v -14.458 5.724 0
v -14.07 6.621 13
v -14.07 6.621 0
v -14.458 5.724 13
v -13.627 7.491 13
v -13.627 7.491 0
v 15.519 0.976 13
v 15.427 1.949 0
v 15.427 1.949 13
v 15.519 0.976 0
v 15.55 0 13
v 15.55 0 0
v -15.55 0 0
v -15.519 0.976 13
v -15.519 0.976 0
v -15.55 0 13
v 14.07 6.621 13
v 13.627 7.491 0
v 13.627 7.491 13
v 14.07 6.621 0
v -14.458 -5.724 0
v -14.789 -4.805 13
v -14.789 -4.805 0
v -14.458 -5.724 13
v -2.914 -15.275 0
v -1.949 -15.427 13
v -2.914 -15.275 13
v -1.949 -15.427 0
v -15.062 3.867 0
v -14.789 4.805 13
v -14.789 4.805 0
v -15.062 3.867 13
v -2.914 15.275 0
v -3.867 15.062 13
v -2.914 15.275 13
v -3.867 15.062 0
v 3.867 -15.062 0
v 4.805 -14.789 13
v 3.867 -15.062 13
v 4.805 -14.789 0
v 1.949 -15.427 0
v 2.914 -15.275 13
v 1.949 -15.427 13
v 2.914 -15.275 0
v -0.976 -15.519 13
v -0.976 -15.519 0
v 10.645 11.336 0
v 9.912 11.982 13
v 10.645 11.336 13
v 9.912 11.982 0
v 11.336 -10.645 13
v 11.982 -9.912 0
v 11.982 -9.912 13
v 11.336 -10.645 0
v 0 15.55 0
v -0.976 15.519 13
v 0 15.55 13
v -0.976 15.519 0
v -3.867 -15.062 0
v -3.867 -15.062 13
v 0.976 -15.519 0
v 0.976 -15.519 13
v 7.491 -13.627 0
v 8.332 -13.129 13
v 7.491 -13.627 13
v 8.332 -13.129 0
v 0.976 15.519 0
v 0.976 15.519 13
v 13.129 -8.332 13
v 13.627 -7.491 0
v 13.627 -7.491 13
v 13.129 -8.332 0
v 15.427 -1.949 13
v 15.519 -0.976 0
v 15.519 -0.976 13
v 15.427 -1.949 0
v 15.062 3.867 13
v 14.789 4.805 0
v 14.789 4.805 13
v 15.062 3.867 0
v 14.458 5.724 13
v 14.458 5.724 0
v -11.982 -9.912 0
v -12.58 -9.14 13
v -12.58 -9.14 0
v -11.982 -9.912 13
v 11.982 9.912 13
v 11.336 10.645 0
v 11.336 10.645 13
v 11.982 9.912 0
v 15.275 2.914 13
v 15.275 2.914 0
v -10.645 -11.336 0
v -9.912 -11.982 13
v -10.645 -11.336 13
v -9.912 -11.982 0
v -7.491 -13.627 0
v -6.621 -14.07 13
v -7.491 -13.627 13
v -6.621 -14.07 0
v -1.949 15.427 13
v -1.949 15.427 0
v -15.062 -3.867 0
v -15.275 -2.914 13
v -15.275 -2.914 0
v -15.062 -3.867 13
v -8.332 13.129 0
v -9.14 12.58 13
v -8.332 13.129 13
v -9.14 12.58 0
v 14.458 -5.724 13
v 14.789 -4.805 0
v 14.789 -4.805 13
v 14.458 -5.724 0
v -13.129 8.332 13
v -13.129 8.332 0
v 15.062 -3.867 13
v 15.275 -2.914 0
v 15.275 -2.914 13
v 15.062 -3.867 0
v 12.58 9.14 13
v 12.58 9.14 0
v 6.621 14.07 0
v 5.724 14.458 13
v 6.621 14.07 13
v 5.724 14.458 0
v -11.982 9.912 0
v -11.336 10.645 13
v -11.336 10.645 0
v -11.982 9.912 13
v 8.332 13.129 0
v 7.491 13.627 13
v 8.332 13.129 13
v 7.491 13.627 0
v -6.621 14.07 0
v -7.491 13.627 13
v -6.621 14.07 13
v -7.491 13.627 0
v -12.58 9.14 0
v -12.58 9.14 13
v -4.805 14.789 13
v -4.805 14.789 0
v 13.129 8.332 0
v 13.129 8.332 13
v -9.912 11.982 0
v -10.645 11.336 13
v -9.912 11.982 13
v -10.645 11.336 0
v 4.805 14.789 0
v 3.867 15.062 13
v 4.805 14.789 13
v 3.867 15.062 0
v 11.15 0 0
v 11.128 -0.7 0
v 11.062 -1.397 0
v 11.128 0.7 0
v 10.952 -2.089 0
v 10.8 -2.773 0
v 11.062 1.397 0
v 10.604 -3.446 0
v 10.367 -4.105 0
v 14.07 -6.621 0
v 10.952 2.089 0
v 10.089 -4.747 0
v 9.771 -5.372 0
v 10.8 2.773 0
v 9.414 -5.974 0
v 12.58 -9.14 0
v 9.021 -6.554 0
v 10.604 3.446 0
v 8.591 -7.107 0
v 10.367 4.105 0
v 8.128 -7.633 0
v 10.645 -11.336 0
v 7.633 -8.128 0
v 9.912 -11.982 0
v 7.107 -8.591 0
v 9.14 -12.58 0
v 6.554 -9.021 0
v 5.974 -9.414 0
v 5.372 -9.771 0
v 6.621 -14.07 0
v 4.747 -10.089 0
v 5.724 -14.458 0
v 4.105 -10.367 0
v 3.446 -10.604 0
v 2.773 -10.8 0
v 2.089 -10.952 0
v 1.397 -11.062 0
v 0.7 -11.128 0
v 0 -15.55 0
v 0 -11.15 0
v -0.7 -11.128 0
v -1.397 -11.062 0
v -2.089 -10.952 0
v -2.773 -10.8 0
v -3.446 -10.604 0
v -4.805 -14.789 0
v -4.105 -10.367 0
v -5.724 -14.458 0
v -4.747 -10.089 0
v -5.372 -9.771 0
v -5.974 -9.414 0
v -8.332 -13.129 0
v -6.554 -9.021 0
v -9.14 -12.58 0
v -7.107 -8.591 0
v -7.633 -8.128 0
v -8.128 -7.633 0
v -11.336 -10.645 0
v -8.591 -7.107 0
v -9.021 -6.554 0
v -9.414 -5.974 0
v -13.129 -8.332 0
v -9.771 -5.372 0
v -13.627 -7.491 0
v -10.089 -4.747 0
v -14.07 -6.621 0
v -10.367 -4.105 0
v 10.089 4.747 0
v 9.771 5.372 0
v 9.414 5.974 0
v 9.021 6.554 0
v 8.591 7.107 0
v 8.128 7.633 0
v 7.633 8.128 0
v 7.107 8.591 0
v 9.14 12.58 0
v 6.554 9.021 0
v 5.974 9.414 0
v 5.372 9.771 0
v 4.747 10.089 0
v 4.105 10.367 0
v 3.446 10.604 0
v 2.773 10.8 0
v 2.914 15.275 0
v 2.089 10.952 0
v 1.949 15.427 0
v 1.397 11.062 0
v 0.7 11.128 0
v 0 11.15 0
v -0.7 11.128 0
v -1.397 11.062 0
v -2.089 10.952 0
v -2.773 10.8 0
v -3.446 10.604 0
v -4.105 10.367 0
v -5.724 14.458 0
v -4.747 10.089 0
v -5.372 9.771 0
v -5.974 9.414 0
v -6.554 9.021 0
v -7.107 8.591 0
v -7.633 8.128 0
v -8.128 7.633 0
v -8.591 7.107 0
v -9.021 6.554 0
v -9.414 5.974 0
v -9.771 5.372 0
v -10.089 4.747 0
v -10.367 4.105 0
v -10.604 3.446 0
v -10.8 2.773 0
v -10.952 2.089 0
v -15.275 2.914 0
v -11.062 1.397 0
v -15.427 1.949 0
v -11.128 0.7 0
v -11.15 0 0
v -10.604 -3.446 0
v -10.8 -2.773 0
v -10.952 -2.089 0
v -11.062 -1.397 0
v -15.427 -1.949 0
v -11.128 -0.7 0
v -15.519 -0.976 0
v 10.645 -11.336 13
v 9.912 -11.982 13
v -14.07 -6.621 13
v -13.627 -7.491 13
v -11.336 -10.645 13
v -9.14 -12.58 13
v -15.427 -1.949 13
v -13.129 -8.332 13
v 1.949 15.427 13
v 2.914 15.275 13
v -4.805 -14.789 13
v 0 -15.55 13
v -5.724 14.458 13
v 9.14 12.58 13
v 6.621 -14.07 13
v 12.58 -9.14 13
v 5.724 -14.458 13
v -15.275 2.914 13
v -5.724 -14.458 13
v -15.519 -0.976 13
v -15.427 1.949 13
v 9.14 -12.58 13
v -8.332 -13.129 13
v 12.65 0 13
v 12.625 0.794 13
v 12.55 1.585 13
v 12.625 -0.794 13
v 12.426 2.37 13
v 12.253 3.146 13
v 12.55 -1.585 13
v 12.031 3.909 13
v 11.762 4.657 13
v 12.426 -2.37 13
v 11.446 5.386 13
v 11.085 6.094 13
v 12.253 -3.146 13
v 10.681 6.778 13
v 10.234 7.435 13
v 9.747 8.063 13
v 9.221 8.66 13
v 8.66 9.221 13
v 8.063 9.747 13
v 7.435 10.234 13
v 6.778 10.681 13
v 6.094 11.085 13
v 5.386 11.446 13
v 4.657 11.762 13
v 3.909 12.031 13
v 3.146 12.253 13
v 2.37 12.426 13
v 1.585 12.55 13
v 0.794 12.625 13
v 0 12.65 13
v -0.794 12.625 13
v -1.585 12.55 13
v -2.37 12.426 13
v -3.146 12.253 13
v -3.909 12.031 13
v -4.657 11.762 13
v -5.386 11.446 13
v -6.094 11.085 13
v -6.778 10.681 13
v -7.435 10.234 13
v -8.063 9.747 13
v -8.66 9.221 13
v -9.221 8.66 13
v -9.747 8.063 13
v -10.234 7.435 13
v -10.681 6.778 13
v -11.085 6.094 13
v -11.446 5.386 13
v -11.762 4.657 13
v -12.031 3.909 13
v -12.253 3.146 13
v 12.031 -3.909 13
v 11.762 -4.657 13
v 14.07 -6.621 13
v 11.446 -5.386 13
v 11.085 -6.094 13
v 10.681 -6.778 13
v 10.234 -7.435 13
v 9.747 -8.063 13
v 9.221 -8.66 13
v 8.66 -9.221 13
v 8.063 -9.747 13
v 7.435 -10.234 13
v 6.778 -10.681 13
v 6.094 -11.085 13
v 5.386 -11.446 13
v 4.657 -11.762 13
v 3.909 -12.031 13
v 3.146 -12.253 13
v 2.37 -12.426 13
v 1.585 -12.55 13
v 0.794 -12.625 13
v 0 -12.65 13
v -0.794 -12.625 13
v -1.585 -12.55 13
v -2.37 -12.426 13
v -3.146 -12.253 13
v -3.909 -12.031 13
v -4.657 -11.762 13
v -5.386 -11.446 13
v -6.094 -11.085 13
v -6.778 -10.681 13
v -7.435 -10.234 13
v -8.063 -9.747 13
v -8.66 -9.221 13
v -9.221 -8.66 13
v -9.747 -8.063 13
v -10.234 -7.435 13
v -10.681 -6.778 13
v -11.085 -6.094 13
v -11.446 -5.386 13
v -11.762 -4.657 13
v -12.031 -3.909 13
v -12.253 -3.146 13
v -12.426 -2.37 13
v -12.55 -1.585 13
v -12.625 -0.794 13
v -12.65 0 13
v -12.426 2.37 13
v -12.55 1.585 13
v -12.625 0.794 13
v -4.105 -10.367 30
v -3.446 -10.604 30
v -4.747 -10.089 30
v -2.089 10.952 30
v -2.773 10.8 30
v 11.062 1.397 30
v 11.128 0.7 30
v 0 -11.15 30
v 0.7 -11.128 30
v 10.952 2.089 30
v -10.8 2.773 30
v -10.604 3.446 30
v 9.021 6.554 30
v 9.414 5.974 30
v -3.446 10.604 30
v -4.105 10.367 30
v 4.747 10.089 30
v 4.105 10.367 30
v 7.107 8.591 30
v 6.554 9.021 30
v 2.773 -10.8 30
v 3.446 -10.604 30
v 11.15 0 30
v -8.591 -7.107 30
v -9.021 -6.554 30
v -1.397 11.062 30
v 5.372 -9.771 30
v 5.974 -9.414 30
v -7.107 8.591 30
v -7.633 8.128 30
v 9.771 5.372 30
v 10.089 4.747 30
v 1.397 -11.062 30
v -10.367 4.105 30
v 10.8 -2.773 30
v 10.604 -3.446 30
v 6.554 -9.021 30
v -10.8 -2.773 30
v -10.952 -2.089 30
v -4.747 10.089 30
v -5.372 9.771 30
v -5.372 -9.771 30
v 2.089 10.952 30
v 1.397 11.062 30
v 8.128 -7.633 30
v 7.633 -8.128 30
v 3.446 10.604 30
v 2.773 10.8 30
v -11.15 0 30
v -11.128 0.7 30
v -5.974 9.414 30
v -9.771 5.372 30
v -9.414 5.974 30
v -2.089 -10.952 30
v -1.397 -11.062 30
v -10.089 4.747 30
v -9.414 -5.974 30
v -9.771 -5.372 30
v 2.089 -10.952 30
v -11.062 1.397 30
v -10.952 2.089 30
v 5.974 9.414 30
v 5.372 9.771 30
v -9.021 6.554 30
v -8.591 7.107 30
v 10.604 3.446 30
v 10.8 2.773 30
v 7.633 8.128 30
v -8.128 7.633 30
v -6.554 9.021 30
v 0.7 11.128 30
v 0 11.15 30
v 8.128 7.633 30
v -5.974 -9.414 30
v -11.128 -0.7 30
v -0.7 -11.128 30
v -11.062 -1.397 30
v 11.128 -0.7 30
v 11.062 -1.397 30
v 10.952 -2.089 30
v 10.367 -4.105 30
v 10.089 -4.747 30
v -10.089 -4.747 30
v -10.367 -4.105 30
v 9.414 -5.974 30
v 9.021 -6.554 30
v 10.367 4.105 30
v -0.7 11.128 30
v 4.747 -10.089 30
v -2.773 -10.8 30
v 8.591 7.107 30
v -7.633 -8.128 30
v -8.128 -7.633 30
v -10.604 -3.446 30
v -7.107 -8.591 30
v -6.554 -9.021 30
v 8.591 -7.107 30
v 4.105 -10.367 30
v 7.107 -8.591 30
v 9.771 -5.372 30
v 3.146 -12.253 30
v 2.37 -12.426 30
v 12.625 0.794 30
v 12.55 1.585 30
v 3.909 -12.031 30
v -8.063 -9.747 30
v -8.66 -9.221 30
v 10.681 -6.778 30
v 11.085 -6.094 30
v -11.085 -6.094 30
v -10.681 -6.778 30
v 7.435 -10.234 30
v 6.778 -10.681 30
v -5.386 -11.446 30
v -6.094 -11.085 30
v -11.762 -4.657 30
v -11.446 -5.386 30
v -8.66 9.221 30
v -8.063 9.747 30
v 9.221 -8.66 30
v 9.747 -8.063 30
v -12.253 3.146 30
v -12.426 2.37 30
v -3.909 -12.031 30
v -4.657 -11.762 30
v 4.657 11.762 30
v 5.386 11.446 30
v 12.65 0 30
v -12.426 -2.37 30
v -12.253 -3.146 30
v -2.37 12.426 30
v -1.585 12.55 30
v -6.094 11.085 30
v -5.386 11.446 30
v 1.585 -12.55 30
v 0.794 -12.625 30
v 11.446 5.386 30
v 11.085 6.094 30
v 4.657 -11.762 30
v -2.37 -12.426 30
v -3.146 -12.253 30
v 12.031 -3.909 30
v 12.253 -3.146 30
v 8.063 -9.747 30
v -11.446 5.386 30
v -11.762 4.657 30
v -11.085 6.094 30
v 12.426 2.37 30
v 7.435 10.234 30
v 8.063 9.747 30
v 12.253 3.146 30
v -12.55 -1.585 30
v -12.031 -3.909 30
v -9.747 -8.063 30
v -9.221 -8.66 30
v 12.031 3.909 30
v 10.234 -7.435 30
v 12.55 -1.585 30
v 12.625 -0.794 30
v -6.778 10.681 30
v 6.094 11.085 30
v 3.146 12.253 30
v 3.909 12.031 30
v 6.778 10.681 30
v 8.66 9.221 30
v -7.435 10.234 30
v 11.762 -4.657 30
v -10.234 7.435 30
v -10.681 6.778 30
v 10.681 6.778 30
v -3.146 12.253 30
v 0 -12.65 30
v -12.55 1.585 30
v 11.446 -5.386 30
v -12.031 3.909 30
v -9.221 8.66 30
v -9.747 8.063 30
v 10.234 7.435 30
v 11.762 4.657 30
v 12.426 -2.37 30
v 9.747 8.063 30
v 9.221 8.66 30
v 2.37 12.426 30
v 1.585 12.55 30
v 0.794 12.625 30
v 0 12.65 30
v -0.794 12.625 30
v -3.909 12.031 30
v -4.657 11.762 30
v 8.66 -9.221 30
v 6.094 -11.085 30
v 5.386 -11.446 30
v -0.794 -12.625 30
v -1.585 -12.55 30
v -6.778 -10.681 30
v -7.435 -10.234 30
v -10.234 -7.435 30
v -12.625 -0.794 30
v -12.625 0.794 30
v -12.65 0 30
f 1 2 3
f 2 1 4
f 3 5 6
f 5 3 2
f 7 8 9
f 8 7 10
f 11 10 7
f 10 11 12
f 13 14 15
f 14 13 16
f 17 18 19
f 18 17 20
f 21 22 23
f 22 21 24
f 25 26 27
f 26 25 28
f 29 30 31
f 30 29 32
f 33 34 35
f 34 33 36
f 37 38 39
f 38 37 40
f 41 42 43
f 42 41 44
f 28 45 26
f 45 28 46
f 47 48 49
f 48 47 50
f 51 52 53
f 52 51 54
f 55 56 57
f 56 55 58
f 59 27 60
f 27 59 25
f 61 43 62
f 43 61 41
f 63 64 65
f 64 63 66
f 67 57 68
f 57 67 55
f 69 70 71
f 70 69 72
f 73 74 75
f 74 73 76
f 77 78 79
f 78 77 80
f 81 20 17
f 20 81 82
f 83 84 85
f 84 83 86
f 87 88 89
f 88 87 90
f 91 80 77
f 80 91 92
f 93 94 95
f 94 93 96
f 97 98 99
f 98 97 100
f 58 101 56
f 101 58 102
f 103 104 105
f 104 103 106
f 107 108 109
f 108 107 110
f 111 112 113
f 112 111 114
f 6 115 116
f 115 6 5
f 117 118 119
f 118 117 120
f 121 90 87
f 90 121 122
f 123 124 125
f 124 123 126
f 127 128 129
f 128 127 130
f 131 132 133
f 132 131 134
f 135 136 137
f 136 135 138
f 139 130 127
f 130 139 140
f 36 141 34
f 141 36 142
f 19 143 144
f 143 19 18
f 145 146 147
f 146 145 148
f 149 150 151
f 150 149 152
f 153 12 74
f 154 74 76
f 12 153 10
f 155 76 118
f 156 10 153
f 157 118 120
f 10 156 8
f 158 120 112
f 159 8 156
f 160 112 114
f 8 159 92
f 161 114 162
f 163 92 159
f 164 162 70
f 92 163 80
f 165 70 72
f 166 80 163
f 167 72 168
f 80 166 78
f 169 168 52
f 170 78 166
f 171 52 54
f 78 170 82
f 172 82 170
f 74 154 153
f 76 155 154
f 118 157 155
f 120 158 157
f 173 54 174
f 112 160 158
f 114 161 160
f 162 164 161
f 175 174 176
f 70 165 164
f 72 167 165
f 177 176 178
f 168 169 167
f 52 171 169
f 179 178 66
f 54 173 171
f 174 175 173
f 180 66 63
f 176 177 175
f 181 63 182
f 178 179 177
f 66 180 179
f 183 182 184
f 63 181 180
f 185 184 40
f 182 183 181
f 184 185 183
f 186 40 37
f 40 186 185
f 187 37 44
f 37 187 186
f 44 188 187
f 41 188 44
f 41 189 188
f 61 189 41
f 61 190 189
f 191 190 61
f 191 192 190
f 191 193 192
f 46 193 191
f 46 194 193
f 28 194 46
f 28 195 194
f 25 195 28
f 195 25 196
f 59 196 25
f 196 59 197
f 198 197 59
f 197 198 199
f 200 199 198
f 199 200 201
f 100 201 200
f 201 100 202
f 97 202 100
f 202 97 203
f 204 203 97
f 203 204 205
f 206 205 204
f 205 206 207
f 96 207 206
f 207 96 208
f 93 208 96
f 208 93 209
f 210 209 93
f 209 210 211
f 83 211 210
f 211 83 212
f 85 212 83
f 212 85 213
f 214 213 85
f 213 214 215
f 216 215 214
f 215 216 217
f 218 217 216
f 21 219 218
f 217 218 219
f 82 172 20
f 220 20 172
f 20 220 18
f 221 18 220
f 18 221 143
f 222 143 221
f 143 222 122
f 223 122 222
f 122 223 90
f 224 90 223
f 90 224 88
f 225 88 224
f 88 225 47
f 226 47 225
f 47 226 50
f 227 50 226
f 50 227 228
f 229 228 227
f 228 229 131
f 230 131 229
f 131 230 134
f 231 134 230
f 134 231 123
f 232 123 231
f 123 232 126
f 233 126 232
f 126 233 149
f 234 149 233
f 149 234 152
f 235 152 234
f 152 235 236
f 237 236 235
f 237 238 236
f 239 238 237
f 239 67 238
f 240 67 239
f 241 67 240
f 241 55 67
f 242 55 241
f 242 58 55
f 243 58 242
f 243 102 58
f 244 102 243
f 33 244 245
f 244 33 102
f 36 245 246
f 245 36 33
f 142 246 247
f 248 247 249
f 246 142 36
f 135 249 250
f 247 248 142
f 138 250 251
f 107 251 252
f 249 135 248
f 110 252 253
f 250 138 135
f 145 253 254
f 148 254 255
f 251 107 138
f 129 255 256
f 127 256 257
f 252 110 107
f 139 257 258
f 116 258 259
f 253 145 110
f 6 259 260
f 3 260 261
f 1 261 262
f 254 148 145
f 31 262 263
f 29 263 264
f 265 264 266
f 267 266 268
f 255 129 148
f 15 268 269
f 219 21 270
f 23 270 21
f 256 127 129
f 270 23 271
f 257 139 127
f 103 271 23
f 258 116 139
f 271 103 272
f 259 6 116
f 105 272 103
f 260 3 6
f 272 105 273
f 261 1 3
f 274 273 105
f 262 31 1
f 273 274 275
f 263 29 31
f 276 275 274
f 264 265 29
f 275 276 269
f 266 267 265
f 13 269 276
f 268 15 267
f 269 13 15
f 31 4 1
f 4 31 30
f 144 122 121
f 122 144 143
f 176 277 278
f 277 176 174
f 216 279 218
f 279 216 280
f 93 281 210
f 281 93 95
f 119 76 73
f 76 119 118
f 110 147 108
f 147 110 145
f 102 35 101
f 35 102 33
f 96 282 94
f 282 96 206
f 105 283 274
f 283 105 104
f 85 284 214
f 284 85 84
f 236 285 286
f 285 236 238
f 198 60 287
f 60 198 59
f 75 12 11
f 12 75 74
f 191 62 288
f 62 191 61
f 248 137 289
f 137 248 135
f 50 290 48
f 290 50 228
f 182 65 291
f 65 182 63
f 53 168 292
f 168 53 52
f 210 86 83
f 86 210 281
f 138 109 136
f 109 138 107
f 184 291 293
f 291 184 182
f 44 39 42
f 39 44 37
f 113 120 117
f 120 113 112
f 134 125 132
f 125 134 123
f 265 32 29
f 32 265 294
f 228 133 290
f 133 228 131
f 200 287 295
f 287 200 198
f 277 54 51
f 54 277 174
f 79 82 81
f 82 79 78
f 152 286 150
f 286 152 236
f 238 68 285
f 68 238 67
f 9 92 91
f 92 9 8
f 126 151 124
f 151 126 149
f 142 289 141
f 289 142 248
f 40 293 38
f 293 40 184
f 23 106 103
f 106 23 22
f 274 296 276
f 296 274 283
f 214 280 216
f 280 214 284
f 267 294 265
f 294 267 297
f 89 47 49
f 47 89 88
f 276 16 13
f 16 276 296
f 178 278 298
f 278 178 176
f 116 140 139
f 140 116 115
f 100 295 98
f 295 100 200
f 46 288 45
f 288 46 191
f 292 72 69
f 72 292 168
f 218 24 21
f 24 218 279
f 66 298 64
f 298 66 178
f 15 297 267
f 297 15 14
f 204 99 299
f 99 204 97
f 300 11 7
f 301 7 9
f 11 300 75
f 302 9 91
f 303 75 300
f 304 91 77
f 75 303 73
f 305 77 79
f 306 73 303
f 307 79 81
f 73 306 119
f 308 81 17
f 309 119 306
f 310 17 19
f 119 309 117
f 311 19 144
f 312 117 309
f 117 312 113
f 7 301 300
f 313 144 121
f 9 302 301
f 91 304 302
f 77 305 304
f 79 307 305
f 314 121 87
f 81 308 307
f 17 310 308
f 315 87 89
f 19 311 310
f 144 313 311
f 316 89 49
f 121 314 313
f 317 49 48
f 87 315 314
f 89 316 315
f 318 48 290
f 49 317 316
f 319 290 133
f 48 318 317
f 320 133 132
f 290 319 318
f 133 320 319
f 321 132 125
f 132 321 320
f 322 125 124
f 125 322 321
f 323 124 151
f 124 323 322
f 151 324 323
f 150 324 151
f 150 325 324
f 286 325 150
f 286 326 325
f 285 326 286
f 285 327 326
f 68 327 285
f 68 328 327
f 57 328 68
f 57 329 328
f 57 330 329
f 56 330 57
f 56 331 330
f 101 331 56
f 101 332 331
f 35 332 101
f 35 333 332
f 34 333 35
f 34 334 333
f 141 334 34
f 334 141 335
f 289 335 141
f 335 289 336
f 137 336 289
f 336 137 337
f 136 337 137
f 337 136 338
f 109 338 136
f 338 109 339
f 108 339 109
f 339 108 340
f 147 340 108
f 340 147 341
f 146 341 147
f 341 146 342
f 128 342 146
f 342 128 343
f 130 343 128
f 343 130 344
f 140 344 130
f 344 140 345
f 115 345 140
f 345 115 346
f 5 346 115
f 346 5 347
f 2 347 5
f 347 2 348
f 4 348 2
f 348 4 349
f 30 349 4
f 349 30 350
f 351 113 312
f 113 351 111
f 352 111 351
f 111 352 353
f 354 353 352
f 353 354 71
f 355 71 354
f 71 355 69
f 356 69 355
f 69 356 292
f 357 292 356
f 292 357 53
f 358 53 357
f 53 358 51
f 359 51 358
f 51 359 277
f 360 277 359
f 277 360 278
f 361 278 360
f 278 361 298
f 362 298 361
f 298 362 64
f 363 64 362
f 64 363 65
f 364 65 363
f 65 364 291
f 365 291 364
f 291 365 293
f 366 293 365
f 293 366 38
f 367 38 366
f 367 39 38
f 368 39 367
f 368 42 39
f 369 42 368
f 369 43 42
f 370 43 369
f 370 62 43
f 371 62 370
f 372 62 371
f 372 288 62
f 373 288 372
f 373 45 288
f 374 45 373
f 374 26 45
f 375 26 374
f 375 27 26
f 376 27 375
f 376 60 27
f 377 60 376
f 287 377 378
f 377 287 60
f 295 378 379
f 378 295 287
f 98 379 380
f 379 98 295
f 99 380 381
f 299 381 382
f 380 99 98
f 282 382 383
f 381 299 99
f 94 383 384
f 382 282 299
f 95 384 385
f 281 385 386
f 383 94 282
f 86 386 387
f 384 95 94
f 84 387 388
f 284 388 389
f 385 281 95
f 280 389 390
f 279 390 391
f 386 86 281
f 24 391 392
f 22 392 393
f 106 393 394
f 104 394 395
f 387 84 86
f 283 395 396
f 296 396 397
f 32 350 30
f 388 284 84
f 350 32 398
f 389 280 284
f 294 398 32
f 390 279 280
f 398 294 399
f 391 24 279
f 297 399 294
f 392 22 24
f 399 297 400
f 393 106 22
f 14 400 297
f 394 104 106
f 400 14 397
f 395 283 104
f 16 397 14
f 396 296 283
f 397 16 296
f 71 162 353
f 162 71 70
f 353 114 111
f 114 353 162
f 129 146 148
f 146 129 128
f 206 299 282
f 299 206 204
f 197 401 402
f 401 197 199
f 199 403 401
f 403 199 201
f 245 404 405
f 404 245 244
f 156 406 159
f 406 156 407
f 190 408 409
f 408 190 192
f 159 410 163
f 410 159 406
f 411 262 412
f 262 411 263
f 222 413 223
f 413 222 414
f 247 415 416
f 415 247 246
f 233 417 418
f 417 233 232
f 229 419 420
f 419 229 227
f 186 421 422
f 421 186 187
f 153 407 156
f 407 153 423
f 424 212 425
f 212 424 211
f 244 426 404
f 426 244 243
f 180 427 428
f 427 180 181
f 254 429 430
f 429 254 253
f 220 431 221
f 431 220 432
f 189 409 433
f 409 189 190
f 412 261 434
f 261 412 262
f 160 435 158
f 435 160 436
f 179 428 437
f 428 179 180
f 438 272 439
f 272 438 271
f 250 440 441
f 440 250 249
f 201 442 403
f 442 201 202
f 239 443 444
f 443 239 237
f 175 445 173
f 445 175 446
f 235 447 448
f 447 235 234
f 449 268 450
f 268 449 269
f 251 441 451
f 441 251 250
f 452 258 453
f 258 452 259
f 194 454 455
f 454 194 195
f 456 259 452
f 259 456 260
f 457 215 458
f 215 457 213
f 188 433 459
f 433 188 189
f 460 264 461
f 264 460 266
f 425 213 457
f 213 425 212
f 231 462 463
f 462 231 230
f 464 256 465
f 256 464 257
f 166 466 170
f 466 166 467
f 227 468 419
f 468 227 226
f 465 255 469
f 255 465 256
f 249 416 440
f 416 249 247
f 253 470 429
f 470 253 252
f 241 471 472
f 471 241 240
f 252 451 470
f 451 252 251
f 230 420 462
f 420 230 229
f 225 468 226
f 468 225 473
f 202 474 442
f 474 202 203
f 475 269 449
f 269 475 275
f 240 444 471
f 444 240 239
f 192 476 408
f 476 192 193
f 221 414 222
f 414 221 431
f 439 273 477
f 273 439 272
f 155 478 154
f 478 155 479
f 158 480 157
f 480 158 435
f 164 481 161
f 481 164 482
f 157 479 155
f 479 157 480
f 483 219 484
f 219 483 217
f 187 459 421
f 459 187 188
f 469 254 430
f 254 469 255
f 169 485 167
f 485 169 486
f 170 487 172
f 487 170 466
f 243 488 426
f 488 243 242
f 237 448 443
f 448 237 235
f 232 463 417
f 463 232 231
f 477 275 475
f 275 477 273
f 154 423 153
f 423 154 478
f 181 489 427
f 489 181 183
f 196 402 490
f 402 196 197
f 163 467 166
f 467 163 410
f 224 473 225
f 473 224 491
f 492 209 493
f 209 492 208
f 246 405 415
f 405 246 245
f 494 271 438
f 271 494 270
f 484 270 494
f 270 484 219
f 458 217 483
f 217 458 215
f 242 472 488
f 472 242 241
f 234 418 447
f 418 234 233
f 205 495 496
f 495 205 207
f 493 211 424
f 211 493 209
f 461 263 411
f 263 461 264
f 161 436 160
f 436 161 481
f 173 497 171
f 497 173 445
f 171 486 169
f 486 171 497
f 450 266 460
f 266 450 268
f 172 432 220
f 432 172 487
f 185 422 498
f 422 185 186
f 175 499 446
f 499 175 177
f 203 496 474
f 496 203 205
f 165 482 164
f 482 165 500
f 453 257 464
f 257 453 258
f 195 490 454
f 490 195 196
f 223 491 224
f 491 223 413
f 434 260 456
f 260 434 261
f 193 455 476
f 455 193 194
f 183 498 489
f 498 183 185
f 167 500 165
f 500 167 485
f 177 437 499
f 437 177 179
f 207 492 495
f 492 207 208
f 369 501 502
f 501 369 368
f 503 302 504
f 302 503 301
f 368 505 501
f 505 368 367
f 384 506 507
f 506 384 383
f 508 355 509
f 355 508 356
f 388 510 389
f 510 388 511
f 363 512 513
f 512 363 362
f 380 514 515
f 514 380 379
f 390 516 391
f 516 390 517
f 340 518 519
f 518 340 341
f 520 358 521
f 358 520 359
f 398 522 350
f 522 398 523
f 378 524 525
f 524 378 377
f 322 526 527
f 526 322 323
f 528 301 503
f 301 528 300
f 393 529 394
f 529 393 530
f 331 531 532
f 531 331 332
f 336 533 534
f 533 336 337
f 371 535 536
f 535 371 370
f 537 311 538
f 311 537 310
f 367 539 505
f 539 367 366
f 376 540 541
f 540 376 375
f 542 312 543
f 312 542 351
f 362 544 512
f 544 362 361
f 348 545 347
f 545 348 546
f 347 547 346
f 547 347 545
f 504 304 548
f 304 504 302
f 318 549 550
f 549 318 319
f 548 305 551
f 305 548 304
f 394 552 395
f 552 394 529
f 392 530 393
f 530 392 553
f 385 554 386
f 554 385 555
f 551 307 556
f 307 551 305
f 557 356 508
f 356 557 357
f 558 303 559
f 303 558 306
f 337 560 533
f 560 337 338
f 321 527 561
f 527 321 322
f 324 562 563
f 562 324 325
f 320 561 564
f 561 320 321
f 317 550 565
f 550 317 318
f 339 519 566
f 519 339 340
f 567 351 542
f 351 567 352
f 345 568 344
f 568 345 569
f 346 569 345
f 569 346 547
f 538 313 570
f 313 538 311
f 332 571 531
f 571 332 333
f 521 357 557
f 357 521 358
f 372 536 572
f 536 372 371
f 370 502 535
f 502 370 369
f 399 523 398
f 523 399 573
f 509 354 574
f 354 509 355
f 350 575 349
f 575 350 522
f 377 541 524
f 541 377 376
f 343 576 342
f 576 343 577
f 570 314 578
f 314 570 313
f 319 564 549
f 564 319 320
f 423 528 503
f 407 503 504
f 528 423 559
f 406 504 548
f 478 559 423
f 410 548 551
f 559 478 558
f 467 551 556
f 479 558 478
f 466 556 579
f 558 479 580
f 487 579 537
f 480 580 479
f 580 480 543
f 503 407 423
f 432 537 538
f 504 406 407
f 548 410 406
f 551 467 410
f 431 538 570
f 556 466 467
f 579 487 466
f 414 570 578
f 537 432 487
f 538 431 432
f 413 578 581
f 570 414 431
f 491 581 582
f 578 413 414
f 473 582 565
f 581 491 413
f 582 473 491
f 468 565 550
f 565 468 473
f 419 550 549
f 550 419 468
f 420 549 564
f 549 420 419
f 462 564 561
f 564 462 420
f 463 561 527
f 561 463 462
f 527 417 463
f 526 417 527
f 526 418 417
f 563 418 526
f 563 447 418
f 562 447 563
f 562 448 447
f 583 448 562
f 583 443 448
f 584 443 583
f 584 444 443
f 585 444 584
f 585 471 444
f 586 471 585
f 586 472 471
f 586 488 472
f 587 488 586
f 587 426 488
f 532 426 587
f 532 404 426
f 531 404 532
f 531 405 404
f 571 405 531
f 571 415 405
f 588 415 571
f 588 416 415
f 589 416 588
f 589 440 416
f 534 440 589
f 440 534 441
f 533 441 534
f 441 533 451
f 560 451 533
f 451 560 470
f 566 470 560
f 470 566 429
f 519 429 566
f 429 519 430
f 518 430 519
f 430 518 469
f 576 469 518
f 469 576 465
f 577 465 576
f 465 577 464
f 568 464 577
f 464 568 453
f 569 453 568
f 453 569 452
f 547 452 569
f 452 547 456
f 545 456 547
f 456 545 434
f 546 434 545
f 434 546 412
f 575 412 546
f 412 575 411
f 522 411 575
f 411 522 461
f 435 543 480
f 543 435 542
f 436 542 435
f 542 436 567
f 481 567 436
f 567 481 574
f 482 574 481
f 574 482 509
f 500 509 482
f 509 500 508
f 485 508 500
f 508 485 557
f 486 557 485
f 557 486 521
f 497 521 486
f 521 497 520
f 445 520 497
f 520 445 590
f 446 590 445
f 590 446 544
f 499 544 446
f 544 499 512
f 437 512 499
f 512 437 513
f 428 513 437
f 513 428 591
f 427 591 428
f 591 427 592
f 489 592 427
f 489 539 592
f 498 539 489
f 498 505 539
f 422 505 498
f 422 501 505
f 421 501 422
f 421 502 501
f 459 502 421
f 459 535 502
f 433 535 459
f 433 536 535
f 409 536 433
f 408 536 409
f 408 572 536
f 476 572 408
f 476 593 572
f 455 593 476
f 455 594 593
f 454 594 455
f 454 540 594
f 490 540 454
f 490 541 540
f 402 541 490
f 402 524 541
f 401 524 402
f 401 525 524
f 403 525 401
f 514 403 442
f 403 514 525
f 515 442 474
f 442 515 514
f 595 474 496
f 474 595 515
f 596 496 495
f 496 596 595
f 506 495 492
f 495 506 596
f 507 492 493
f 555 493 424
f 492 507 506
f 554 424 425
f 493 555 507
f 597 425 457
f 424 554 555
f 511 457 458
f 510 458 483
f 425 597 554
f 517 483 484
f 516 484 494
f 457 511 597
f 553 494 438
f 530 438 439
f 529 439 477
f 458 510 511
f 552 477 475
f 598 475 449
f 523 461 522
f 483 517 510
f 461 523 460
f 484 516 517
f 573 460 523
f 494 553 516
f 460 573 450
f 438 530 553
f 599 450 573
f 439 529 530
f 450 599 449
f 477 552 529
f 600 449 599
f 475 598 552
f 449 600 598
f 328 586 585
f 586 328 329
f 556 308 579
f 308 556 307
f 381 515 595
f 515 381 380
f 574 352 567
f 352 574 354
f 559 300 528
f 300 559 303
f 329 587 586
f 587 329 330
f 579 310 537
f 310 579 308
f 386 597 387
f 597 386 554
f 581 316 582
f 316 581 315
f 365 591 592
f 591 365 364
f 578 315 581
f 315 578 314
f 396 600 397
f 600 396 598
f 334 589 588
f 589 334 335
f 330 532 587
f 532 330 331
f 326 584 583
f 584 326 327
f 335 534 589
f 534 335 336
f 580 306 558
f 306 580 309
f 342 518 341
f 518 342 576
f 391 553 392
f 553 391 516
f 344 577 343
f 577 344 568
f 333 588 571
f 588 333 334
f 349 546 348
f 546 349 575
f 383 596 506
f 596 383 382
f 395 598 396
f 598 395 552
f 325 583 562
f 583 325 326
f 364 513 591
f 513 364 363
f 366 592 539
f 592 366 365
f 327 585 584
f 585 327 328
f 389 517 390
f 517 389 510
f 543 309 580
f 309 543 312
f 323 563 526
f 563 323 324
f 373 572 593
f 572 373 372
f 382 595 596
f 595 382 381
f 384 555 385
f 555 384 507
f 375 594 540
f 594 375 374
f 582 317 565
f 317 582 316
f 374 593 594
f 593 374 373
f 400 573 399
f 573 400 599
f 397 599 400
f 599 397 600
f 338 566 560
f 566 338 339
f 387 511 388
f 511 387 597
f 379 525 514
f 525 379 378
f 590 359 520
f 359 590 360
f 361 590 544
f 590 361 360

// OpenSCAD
$fn=100;
difference() {
    cylinder( d=31.1, h=13);
    translate([0, 0, -1])
    cylinder( d=22.3, h=42 );
}

difference() {
    cylinder( d=25.3, h=30 );
    translate([0, 0, -1])
    cylinder( d=22.3, h=42 );
}
